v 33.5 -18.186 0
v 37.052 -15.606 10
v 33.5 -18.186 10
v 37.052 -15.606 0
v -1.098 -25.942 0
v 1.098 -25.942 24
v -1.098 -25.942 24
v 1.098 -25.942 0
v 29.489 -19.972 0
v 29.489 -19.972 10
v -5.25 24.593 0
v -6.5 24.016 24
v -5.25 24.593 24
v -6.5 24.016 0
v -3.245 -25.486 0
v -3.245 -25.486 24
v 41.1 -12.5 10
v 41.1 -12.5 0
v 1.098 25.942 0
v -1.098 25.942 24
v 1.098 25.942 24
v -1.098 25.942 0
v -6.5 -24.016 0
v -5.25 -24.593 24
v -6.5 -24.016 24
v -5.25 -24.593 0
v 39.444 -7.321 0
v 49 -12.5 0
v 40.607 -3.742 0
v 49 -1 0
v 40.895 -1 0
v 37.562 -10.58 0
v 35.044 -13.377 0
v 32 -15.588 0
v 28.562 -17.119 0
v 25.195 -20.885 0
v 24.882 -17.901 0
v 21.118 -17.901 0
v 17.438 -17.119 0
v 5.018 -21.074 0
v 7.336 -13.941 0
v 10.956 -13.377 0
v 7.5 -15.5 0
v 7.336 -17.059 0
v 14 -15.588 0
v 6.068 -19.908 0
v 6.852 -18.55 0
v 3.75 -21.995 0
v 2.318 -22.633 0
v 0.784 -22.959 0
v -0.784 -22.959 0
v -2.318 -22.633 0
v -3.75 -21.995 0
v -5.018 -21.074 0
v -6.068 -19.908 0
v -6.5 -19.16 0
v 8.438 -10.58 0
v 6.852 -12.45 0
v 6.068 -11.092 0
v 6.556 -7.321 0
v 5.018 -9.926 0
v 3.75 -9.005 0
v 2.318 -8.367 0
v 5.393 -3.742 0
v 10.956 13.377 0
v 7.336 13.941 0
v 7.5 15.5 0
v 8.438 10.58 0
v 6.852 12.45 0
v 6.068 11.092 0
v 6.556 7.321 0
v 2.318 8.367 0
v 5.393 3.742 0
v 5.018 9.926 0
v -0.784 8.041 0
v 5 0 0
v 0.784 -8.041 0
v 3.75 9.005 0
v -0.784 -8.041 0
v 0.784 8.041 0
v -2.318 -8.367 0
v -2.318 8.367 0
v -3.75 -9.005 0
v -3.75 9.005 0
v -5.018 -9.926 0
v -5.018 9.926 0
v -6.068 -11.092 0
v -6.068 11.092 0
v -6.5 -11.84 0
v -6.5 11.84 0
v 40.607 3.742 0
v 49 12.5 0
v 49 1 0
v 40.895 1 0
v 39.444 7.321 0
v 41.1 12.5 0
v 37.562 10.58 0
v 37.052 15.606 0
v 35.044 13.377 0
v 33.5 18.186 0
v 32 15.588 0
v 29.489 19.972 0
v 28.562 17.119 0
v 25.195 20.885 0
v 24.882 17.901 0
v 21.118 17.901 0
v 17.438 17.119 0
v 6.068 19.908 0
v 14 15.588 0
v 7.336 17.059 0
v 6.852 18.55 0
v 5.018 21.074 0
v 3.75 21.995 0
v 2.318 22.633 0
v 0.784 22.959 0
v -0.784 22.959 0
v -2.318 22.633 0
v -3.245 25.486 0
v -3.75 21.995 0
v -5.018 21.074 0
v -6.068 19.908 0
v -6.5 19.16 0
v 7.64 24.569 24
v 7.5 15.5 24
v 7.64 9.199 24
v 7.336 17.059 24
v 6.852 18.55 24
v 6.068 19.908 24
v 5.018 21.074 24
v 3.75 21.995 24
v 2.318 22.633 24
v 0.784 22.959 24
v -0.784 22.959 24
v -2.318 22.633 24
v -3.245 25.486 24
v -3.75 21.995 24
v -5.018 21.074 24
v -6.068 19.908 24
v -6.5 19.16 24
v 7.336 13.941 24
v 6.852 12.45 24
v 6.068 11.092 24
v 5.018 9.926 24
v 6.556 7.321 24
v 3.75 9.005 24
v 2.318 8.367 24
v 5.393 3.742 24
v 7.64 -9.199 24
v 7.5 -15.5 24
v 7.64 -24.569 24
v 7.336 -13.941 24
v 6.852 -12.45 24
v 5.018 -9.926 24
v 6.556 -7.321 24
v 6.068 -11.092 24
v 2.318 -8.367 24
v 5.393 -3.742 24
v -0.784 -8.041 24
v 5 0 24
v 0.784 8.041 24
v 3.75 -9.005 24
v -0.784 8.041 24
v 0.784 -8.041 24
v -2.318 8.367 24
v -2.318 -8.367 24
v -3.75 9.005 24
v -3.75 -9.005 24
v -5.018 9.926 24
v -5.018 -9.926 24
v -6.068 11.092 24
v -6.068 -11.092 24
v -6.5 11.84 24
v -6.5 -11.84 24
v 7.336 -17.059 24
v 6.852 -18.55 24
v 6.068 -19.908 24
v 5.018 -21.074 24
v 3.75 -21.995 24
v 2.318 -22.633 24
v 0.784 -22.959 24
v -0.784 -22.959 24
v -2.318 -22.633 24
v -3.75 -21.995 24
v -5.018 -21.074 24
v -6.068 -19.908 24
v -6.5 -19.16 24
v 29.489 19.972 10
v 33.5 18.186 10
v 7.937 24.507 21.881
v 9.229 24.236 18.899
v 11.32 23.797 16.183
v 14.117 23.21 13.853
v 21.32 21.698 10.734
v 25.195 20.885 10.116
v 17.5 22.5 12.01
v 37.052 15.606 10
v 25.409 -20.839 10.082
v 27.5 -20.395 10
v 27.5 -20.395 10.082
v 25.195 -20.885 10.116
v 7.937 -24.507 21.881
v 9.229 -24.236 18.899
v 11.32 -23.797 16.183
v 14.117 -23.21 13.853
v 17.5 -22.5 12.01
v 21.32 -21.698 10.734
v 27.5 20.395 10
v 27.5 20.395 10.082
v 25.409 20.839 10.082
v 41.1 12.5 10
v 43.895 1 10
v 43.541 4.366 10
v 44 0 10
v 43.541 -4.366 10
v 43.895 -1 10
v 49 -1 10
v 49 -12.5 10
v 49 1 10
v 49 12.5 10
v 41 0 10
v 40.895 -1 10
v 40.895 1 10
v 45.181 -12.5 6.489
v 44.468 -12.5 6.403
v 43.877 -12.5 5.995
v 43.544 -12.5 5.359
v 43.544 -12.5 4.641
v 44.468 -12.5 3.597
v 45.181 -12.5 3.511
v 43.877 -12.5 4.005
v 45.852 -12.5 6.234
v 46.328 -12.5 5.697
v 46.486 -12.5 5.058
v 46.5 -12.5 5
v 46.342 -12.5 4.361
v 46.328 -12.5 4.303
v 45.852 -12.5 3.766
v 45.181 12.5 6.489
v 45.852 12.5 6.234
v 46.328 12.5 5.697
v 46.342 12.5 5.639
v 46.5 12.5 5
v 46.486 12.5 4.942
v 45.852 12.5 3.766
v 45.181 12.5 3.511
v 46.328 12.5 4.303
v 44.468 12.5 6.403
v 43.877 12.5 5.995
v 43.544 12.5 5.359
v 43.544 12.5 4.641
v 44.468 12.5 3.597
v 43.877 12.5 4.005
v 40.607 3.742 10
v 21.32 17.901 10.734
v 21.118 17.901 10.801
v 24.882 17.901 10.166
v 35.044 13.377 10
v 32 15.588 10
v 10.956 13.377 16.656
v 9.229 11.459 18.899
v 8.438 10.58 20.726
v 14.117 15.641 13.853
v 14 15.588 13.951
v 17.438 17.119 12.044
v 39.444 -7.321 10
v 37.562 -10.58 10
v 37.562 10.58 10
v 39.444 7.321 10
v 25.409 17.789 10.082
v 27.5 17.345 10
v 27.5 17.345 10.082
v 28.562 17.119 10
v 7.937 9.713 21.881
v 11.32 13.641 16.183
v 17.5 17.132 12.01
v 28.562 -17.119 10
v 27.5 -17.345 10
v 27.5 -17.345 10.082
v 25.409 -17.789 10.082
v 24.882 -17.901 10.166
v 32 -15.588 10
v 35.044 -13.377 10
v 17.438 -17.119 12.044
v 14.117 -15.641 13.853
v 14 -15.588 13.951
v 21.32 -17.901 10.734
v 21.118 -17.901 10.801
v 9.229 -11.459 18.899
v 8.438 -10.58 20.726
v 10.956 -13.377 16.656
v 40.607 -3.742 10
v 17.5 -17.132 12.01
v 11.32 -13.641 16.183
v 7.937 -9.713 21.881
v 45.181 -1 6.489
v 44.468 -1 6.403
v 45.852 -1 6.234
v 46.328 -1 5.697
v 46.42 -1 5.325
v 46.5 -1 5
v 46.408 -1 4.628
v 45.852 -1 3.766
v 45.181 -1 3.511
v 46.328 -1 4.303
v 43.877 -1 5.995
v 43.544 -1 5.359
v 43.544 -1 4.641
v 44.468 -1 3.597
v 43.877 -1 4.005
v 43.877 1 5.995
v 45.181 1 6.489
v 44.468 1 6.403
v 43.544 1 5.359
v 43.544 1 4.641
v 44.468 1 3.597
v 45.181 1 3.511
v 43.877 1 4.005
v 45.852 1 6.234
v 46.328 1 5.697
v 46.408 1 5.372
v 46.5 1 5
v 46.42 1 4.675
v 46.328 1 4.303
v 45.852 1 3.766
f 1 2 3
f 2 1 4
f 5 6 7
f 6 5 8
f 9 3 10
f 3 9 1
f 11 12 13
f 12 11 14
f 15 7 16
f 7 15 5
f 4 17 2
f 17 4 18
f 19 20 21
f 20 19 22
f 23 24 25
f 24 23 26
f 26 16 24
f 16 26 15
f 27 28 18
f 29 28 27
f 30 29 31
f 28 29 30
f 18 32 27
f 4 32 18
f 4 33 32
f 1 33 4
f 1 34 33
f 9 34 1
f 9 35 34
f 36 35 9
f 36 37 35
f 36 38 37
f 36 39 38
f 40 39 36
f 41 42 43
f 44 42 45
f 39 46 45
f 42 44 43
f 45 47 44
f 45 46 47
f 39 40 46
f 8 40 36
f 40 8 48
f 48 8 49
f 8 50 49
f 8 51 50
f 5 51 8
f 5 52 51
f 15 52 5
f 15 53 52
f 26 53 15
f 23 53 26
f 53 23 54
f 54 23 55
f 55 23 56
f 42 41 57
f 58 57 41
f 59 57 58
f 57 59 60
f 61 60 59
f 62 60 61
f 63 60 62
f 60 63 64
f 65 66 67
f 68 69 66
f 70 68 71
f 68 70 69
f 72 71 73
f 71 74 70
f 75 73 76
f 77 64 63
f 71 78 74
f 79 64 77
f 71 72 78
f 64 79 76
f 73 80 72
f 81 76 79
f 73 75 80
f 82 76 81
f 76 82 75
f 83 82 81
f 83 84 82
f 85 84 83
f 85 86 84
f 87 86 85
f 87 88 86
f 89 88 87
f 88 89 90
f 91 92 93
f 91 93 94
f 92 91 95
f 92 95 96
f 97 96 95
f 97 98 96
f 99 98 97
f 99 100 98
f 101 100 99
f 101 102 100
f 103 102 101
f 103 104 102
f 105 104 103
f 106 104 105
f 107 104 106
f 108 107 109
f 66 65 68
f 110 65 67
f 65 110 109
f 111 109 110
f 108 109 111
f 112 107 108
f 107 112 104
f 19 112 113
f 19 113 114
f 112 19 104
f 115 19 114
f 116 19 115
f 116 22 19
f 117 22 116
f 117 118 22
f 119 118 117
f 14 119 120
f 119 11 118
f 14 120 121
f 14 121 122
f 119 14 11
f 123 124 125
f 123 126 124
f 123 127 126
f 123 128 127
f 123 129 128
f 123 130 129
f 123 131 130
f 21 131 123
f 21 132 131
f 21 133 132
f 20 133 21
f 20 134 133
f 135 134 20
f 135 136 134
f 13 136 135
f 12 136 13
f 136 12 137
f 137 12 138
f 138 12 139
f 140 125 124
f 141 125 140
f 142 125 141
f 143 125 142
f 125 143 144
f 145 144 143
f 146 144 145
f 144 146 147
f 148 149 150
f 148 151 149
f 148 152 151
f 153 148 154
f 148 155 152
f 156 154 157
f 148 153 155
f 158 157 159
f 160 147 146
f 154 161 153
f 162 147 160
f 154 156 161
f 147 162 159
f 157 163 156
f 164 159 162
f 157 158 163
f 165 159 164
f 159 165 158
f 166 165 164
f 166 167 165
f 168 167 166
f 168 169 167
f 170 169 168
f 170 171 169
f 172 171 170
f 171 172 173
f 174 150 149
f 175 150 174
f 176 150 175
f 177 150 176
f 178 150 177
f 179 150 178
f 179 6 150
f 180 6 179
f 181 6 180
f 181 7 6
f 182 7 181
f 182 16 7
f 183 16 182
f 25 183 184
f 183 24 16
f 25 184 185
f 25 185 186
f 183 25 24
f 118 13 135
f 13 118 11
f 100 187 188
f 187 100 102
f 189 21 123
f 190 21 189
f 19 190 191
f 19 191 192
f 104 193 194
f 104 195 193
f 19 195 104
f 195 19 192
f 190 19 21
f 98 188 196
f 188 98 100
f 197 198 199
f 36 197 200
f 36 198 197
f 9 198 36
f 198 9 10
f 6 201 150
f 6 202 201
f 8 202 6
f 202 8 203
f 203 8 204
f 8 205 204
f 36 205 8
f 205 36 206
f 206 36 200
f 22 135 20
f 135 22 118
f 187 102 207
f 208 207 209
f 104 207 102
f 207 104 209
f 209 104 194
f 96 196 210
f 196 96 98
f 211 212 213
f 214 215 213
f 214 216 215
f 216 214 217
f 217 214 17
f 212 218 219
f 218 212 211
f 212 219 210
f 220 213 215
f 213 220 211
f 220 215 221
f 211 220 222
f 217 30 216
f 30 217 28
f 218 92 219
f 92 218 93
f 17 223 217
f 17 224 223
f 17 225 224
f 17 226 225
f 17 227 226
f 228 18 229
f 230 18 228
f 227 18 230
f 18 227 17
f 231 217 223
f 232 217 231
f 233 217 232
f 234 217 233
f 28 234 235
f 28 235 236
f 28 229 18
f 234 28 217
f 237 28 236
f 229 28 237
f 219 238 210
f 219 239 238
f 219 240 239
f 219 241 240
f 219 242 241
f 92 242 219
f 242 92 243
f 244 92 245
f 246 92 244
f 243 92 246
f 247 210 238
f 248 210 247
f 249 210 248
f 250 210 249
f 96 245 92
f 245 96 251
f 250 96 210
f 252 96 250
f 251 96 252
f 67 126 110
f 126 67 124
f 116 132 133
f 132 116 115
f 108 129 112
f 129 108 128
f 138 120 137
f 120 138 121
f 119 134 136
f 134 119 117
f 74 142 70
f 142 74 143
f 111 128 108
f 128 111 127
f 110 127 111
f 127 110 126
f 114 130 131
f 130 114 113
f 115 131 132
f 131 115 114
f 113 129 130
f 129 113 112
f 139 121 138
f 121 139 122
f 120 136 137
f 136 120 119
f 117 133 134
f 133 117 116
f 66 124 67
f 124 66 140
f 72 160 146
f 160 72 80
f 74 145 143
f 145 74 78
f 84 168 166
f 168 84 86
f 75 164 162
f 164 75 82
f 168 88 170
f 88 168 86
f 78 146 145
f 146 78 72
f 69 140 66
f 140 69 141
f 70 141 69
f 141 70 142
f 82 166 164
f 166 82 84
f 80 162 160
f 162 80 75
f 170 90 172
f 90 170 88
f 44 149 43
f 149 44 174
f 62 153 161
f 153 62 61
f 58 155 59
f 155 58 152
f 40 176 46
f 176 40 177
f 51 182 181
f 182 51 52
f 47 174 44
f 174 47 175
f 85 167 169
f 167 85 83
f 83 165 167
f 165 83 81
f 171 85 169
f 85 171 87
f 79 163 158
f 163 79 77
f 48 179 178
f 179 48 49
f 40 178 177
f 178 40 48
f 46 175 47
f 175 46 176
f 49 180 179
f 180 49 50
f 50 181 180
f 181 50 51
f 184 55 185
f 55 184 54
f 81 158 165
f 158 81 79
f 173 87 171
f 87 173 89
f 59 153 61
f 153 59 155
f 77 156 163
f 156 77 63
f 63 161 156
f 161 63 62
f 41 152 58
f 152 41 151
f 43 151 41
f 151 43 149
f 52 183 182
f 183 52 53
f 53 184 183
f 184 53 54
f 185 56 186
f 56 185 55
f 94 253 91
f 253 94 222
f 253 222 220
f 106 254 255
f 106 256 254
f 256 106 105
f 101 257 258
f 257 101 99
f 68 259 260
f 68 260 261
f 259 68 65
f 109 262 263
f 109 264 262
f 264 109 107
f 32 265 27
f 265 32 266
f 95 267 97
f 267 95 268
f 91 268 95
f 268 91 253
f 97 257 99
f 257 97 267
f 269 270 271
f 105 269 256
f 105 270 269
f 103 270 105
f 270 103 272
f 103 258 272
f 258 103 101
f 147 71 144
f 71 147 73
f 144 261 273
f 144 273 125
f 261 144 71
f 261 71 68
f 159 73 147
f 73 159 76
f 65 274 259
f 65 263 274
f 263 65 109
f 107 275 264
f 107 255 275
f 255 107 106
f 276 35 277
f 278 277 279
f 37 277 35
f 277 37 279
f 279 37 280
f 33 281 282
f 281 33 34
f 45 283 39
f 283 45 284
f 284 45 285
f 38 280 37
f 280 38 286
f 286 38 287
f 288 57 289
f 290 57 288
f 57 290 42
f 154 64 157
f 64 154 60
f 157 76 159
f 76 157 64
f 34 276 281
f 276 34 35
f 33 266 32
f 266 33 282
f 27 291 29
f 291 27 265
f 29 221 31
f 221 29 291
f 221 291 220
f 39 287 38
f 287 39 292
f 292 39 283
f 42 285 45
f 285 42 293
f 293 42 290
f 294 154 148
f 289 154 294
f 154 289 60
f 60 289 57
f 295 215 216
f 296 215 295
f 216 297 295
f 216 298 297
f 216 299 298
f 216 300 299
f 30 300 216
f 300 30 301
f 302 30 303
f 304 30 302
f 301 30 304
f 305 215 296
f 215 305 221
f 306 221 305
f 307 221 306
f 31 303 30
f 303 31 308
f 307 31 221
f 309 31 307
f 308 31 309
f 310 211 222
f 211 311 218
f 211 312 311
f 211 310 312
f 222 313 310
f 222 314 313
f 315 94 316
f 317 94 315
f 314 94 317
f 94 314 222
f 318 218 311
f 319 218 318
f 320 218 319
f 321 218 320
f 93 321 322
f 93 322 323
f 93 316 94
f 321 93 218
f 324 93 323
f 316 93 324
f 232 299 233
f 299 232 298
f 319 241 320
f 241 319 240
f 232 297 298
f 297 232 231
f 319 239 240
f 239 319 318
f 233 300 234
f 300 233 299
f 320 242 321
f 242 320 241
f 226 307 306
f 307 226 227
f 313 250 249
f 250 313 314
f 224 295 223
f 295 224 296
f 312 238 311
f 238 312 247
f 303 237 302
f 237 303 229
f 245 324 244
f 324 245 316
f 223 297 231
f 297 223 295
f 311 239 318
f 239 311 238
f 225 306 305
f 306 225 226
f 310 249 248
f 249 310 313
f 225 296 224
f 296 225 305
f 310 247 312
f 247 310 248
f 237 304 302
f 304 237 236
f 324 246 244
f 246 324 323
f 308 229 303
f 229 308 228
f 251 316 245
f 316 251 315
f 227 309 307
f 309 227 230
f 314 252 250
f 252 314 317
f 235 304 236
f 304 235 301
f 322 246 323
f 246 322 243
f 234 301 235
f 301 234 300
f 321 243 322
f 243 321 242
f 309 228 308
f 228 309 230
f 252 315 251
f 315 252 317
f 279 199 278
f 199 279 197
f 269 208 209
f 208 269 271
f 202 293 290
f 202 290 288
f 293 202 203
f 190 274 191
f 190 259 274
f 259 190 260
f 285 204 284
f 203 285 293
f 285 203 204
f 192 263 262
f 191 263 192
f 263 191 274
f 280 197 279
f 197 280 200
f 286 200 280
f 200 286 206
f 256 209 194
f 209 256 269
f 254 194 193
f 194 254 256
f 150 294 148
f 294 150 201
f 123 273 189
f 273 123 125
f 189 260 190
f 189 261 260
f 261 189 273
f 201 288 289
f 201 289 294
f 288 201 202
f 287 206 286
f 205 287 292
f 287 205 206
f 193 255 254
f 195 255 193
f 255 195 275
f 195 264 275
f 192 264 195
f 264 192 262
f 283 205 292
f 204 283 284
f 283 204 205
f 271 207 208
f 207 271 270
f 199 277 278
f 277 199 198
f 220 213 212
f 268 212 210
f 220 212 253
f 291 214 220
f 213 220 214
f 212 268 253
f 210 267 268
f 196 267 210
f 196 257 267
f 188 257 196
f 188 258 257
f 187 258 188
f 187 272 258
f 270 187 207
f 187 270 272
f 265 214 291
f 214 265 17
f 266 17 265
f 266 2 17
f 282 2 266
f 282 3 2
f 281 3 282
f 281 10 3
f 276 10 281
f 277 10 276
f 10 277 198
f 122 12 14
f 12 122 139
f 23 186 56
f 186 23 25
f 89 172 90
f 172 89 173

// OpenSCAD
$fs=.75;

intersection() {
	difference() {
		union() {
			hull() {
				union() {
					translate(v = [0, 15.5000000000, 0]) {
						cylinder(d = 21.0000000000, h = 24.0000000000);
					}
					mirror(v = [0, 1, 0]) {
						translate(v = [0, 15.5000000000, 0]) {
							cylinder(d = 21.0000000000, h = 24.0000000000);
						}
					}
					translate(v = [-30.0000000000, 0, 0]) {
						cylinder(d = 24.0000000000, h = 24.0000000000);
					}
					translate(v = [23.0000000000, 0, 0]) {
						cylinder(d = 42.0000000000, h = 24.0000000000);
					}
					translate(v = [41.0000000000, 0, 0]) {
						translate(v = [0, -12.5000000000, 0]) {
							cube(size = [0.1000000000, 25, 10.0000000000]);
						}
					}
				}
			}
			translate(v = [41.0000000000, 0, 0]) {
				translate(v = [0, -12.5000000000, 0]) {
					cube(size = [8, 25, 10.0000000000]);
				}
			}
		}
		union() {
			translate(v = [0, 15.5000000000, 0]) {
				cylinder(d = 15.0000000000, h = 24.0000000000);
			}
			mirror(v = [0, 1, 0]) {
				translate(v = [0, 15.5000000000, 0]) {
					cylinder(d = 15.0000000000, h = 24.0000000000);
				}
			}
			translate(v = [-30.0000000000, 0, 0]) {
				cylinder(d = 11.0000000000, h = 24.0000000000);
			}
			translate(v = [23.0000000000, 0, 0]) {
				cylinder(d = 36.0000000000, h = 24.0000000000);
			}
			translate(v = [43.0000000000, 0, 0]) {
				translate(v = [-10.0000000000, -1.0000000000, 0]) {
					cube(size = [20, 2, 10.0000000000]);
				}
			}
			#translate(v = [45.0000000000, 0, 5.0000000000]) {
				rotate(a = [90, 0, 0]) {
					translate(v = [0, 0, -15.0000000000]) {
						cylinder(d = 3, h = 30);
					}
				}
			}
		}
		translate(v = [-30.0000000000, 0, 0]) {
			union() {
				rotate(a = [0, 0, 45]) {
					translate(v = [8.5000000000, 0, 0]) {
						cylinder(d = 3, h = 24.0000000000);
					}
				}
				mirror(v = [0, 1, 0]) {
					rotate(a = [0, 0, 45]) {
						translate(v = [8.5000000000, 0, 0]) {
							cylinder(d = 3, h = 24.0000000000);
						}
					}
				}
				mirror(v = [1, 0, 0]) {
					union() {
						rotate(a = [0, 0, 45]) {
							translate(v = [8.5000000000, 0, 0]) {
								cylinder(d = 3, h = 24.0000000000);
							}
						}
						mirror(v = [0, 1, 0]) {
							rotate(a = [0, 0, 45]) {
								translate(v = [8.5000000000, 0, 0]) {
									cylinder(d = 3, h = 24.0000000000);
								}
							}
						}
					}
				}
			}
		}
		union() {
			translate(v = [27.5000000000, 0, 25.0000000000]) {
				resize(newsize = [40, 60, 30]) {
					translate(v = [-0.0000000000, 0, 0]) {
						union() {
							difference() {
								rotate(a = [90, 0, 0]) {
									translate(v = [-0.0000000000, -0.0000000000, -50.0000000000]) {
										cylinder(d = 50.0000000000, h = 100.0000000000);
									}
								}
								translate(v = [0, -50.0000000000, -50.0000000000]) {
									cube(size = [250.0000000000, 100, 100]);
								}
							}
							translate(v = [0, -50.0000000000, -25.0000000000]) {
								cube(size = [25.0000000000, 100.0000000000, 50.0000000000]);
							}
						}
					}
				}
			}
			translate(v = [-25.5000000000, 0, 25.0000000000]) {
				mirror(v = "x") {
					resize(newsize = [35, 60, 30]) {
						translate(v = [-5.0000000000, 0, 0]) {
							union() {
								difference() {
									rotate(a = [90, 0, 0]) {
										translate(v = [-0.0000000000, -0.0000000000, -50.0000000000]) {
											cylinder(d = 40.0000000000, h = 100.0000000000);
										}
									}
									translate(v = [0, -50.0000000000, -50.0000000000]) {
										cube(size = [200.0000000000, 100, 100]);
									}
								}
								translate(v = [0, -50.0000000000, -20.0000000000]) {
									cube(size = [30.0000000000, 100.0000000000, 40.0000000000]);
								}
							}
						}
					}
				}
			}
		}
	}
	translate(v = [-6.5000000000, 0, 0]) {
		translate(v = [0, -30.0000000000, 0]) {
			cube(size = [60, 60, 24.0000000000]);
		}
	}
}
/***********************************************
*********      SolidPython code:      **********
************************************************
 
from solid import *
from solid import extensions

class Object:
    pass


rod=Object()
rod.d=8.0

nema17 = Object()
nema17.side = 43.
nema17.holeDistance = 31.0
nema17.screwD= 3.
nema17.height = 34. #47 for the long ones, 34 for the short ones


bearing = Object()
bearing.outD = 15.0
bearing.length = 24.0

# to place the rod supports on top of the nema17
supportDepth=10
xRodHole = cylinder(d=rod.d, h=20).rot(y=90)
xSupport = ( cube([supportDepth,nema17.side,rod.d/2+1]).align('left','bottom')
             - xRodHole.move(z=-.5)
             - cylinder(d=nema17.screwD,h=12).center().move(x=5,y=nema17.holeDistance/2.).mirrorCopy('y')
           ).rot(x=180)


bearingShape = cylinder(d=bearing.outD, h= bearing.length+1).center()

#minimal y cart, z motor will be placed in between the rails
yRodDistance = 60.0 # rounding up from nema17.side + bearing.outD
wall=2.0
cartWidth = 2*bearing.length
yBearings = bearingShape.move(z=bearing.length/2).mirrorCopy('z').move(x=yRodDistance/2).mirrorCopy('x')
yCart = ( ( cylinder(d= bearing.outD + 2*wall, h= cartWidth).center().rot(x=90).move(x=yRodDistance/2).mirrorCopy('x')
          + cube([yRodDistance, cartWidth, bearing.outD/2+wall]).align('bottom').move(z=-bearing.outD/2-wall)
          + cube([yRodDistance+bearing.outD+2*wall, cartWidth, bearing.outD/2+wall]).align('top').move(z=bearing.outD/2+wall)

          ) - yBearings.rot(x=90)
            - cube([nema17.side, cartWidth, bearing.outD/2-3]).align('top')
            - cube([nema17.side, cartWidth, bearing.outD]).align('bottom')
            - cube([yRodDistance+20, cartWidth, 3]).align('bottom').move(z=-bearing.outD/2-wall)
            - cylinder(d=3,h=10).move([nema17.holeDistance/2, nema17.holeDistance/2, -bearing.outD/2]).mirrorCopy('x').mirrorCopy('y').debug()
            - cylinder(d=nema17.holeDistance, h =10).move(z=-bearing.outD/2)
          )



#supports for holding the y rods in from the x bearings
bearingCover = cylinder(d= bearing.outD + 2*wall, h= bearing.length).center().rot(y=90)
baseBlock = hull( bearingCover
                  + cube([bearing.outD+2,10,bearing.outD+2]).align('back').move(y=bearing.outD/2+wall))
capScrews = cylinder(d=3., h=bearing.outD + 2*wall).center().move(x=rod.d/2+3./2+1,y=12).mirrorCopy('x')
rodHole = cylinder(d=rod.d,h=10).rot(x=-90).move(y=bearing.outD/2+wall)
#capTopBase = cube([bearing.length, 11, bearing.outD]).center('x').move(y=bearing.outD/2+wall)
#capTopBase = polygon([[0,0],[0,10],[10,10],[10,-3]]).linear_extrude(bearing.length,True).rot(y=-90).move(y=bearing.outD/2+wall)
capTopBase = cube([bearing.length, 20, bearing.outD]).center('x')-bearingCover

baseSupport = baseBlock - rodHole - capScrews

ySupport = part(cylinder(d= bearing.outD + 2*wall, h= yRodDistance + bearing.length).center().rot(y=90)
                 - hole(cylinder(d= bearing.outD, h= yRodDistance + bearing.length).center().rot(y=90))
                 + ( baseSupport
                     * cube(50).align('top')
                   ).move(x=yRodDistance/2).mirrorCopy('x')
                 - cube(1000).align('top').move(z=-bearing.outD/2+1)
                 )

ySupportRodCap = ( baseSupport
                * capTopBase
                - cube([bearing.length,50,1]).align('bottom')
                - cube([bearing.length,10,10]).center('xy')
                )

#support for z rods placed on the falt surface of the yCart above the bearings
zRodDistance = 31.
rodSupport = (cylinder(d=rod.d + 3, h=6) - cylinder(d=rod.d, h=6+1)).move(y=zRodDistance / 2)
beltGuide = ( cube([bearing.outD, bearing.length-zRodDistance/2, 6]).center('x')
              - cylinder(d=rod.d + 6,h=6+1)
              - cube([1,20,6+1]).center('x')).move(y=zRodDistance/2)
zSupport = ( cube([bearing.outD,2*bearing.length,wall]).center('xy')
             + rodSupport.move(z=wall).mirrorCopy('y')
             + beltGuide.move(z=wall).mirrorCopy('y')
           )

zstepper = cube([nema17.side,nema17.side,34]).center('xy').move(z=-bearing.outD/2).color('gray')


yCartZSupport = yCart + zSupport.move(x=yRodDistance/2 ,z=bearing.outD/2)


def xTailBase(h):
    return hull([cylinder(d=3+4,h=h).move(x= 4, y=3./2+rod.d/2+1).mirrorCopy('y'),
                 cylinder(d=4+6, h=h).move(x=-3)
                ]).move(z=.5)

capScrewHoles = cylinder(d=3,h=100).center().move(x= 4, y=3./2+rod.d/2+1).mirrorCopy('y')
pulleyScrewHole = cylinder(d=4,h=100).center().move(x= -3)
nutCuts = (cylinder(d=3+4,h=nema17.height-7).move(x= 4, y=3./2+rod.d/2+1).mirrorCopy('y')
          + cylinder(d=4+6, h=nema17.height-7).move(x=-3)).move(z=7)
xTailSupport = ( xTailBase(nema17.height+1.5+rod.d/2.)
                 - xRodHole
                 - capScrewHoles
                 - pulleyScrewHole
                 - nutCuts
               )
xTailCap = ( xTailBase(7)
             - xRodHole
             - capScrewHoles
             - pulleyScrewHole
            )


zTopH=5.
zBearingD = 16.
zTopBase = hull(cylinder(d=rod.d+6,h=zTopH).move(y=zRodDistance/2).mirrorCopy('y')
            +cylinder(d=zBearingD+6,h=zTopH).move(x=-yRodDistance/2))
zHoles =  (cylinder(d=rod.d,h=zTopH).move(y=zRodDistance/2).mirrorCopy('y')
           + cylinder(d=zBearingD,h=zTopH).move(x=-yRodDistance/2))
zTop = zTopBase - zHoles




zNutD0 = 10.
zNutD1 = 22.
zNutH0 = 10.
drillD = 36.

base = ( hull(cylinder(d=bearing.outD+6,h=bearing.length).move(y=zRodDistance/2).mirrorCopy('y')
              + cylinder(d=zNutD1+2,h=bearing.length).move(x=-yRodDistance/2)
              + cylinder(d=drillD+6,h=bearing.length).move(x=drillD/2+5)
              + cube([.1,25,zNutH0]).center('y').move(x=drillD+5)
              )
            + cube([8,25,zNutH0]).center('y').move(x=drillD+5)
        )

holes =  (cylinder(d=bearing.outD, h=bearing.length).move(y=zRodDistance/2).mirrorCopy('y')
           + cylinder(d=zNutD0+1,h=bearing.length).move(x=-yRodDistance/2)
           + cylinder(d=drillD,h=bearing.length).move(x=drillD/2+5)
           + cube([20,2,zNutH0]).center('xy').move(x=drillD+7)
           + cylinder(d=3,h=30).center().rot(x=90).move(x=drillD+9,z=zNutH0/2).debug()
           )

zNutDrills = cylinder(d=3,h=bearing.length).move(x=17./2).rot(z=45).mirrorCopy('y').mirrorCopy('x').move(x=-yRodDistance/2)

def ushape(p,f=.5):
    return (cylinder(d=100.*f,h=100.).center().rot(x=90)-cube([500.*f,100,100]).center('yz')
            +cube([50.*(1-f),100.,100.*f]).center('yz')

           ).move(x=(.5-f)*-50).resize(p)

pD=[40,60,30]
pN=[35,60,30]
profileCuts = (ushape(pD,.5).move(x=pD[0]/2+bearing.outD/2,z=pD[2]/2+zNutH0)+
           ushape(pN,.4).mirror('x').move(x=-pN[0]/2-bearing.outD/2,z=pN[2]/2+zNutH0)
          )

sideCuts = cube([100,20,bearing.length]).center('x').move(y=zRodDistance/2+bearing.outD/2-1).mirrorCopy('y')

zDrillCart_ = base - holes - zNutDrills  - profileCuts

zDrillCart = zDrillCart_.copy() #- sideCuts
zDrillCart0 = zDrillCart_.copy().intersection(cube([60,60,bearing.length]).center('y').move(x=-bearing.outD/2+1))

scene = zDrillCart



'''
scene = ( xSupport.move(x=-100)
          + ySupport + ySupportRodCap.move(x=-yRodDistance / 2, z=3)
          + (yCartZSupport ).move(y=50)
        )
'''
scad_render_to_file(scene, 'routerParts.scad', '$fs=.75;')

#scad_render_to_file(xSupport, 'routerParts_xSupport.scad', '$fs=.75;')
#scad_render_to_file(ySupport, 'routerParts_ySupport.scad', '$fs=.75;')
#scad_render_to_file(ySupportRodCap, 'routerParts_ySupportCap.scad', '$fs=.75;')
#scad_render_to_file(yCartZSupport, 'routerParts_yCart.scad', '$fs=.75;')
#scad_render_to_file( xTailSupport.rot(y=90), 'routerParts_xTailSupport.scad', '$fs=.75;')
#scad_render_to_file( xTailCap.rot(y=90), 'routerParts_xTailCap.scad', '$fs=.75;')
#scad_render_to_file( zTop, 'routerParts_zTop.scad', '$fs=.75;')
scad_render_to_file( zDrillCart, 'routerParts_zDrillCart.scad', '$fs=.75;')
scad_render_to_file( zDrillCart0, 'routerParts_zDrillCart0.scad', '$fs=.75;')
 
 
************************************************/
